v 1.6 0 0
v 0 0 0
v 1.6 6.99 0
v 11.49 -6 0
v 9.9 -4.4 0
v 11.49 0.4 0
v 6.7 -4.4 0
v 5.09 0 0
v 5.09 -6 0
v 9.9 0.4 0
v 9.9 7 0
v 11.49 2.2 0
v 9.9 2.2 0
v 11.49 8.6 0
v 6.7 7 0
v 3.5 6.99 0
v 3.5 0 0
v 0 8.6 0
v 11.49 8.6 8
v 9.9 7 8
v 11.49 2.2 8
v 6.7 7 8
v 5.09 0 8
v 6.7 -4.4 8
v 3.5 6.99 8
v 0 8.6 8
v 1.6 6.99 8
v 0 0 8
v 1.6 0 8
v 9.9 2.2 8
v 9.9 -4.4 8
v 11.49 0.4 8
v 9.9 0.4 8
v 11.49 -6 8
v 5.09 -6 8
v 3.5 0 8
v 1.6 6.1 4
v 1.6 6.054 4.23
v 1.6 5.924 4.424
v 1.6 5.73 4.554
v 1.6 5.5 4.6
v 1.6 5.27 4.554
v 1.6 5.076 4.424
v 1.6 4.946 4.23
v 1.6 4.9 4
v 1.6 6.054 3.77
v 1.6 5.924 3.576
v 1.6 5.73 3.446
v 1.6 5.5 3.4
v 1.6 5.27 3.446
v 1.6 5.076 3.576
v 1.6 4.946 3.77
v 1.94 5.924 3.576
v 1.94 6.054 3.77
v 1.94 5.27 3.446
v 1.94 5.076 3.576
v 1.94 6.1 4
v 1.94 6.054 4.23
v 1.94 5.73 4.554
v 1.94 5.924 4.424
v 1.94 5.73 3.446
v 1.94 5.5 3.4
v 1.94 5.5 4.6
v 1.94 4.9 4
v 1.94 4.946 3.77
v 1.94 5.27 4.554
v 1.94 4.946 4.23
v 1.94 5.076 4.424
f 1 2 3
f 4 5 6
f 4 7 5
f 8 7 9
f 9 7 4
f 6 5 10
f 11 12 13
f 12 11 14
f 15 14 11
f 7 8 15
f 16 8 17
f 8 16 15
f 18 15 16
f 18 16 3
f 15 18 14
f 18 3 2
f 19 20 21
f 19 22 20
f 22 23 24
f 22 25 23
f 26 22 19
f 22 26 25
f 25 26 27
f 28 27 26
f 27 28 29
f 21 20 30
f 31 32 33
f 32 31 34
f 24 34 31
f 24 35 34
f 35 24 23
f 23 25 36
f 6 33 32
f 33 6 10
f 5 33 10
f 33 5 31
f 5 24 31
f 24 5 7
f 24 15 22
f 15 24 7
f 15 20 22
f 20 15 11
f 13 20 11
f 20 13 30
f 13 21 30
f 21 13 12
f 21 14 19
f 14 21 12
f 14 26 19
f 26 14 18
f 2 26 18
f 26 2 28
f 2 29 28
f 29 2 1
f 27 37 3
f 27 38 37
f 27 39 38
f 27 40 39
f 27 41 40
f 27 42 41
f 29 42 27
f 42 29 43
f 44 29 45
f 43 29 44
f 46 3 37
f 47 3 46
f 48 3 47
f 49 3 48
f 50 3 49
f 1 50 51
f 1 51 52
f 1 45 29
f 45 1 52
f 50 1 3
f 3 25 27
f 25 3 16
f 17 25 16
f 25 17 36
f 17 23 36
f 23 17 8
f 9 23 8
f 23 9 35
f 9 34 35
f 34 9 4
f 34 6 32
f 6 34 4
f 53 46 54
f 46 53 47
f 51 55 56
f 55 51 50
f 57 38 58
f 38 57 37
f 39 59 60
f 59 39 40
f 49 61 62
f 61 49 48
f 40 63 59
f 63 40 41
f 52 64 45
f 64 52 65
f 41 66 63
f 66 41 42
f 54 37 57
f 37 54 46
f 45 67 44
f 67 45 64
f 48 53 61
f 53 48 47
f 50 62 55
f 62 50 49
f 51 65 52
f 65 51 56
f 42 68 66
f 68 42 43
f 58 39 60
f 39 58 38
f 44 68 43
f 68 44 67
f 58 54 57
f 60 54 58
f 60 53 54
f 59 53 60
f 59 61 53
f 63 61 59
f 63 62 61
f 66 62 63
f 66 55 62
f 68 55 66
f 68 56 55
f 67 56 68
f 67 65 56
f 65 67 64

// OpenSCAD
// 机械臂 · 舵机线夹 (cable clip)
//
// 卡在铝合金支架的板边上，把舵机线（最多 3 根并排）固定在支架上，关节处线不会被夹住。
// 打印：PETG（有弹性，PLA 容易断），层高 0.2 mm，100% 填充，按导出方向平放，不需要支撑。
// ★ 量一下支架钢板 / 铝板的厚度，改 sheet_t。一次打 10 个左右。

/* [支架] */
sheet_t = 2.0;         // 支架板厚 (mm)
grip_depth = 7;        // 夹进板边的深度 (mm)
grip_fit = 0.1;        // 夹口比板厚小多少（越大越紧）

/* [线束] */
cables = 3;            // 并排几根舵机线
cable_w = 3.6;         // 一根舵机线的宽度（3 芯扁线）
cable_h = 1.3;         // 舵机线厚度
slack = 0.6;           // 线槽余量

/* [结构] */
width = 8;             // 线夹宽度（沿板边方向）
wall = 1.6;

/* [Hidden] */
ch_w = cables * cable_w + slack;
ch_h = cable_h * 2 + slack;          // 可以叠两层
slot = sheet_t - grip_fit;
body_h = grip_depth + wall;

// 截面画在 XY 平面，沿 Z 拉伸 width
linear_extrude(width) difference() {
  union() {
    // 夹子（U 形）：夹住板边
    square([slot + 2 * wall, body_h]);
    // 线槽（C 形），在夹子一侧
    translate([slot + 2 * wall - 0.01, body_h - ch_w - 2 * wall]) square([ch_h + 2 * wall, ch_w + 2 * wall]);
  }
  // 夹口
  translate([wall, -0.01]) square([slot, grip_depth]);
  // 线槽空腔
  translate([slot + 3 * wall, body_h - ch_w - wall]) square([ch_h, ch_w]);
  // 线槽开口：一条窄缝，比线厚宽、比线宽窄。舵机线竖着塞进去，进去后放平就不会掉出来
  translate([slot + 3 * wall + ch_h - 0.01, body_h - ch_w / 2 - wall - (cable_h + 0.5) / 2])
    square([wall + 0.1, cable_h + 0.5]);
}
// 夹口防滑凸点
for (z = [width / 2]) translate([wall - 0.01, grip_depth - 1.5, z]) rotate([0, 90, 0]) cylinder(d = 1.2, h = 0.35, $fn = 16);
